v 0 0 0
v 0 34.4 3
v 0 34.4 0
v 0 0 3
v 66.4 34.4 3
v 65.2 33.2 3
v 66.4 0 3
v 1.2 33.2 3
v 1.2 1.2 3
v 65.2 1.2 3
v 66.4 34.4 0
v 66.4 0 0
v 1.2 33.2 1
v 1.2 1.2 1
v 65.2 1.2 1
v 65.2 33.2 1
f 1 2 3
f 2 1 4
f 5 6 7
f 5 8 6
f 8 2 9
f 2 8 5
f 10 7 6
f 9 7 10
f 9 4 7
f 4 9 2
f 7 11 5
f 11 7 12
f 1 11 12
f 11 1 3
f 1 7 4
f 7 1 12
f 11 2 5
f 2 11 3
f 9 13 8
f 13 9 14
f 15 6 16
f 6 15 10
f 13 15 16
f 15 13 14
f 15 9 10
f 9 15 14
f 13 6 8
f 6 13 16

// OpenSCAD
// file: utils.scad
function boxXSize(count, size, innerThickness, outerThickness) = count * (size + innerThickness) - innerThickness + 2 * outerThickness;

function boxYSize(count, size, innerThickness, outerThickness) = count * (size + innerThickness) - innerThickness + 2 * outerThickness;

function boxZSize(size, bottomThickness) = bottomThickness + size;
// file: config.scad
cellSize = [20, 30, 20];
cellsCount = [3, 1];

// ---

innerThickness = 1;
outerThickness = 1;
coverThickness = 1;
bottomThickness = 1;

coverOverlap = 2;
coverGap = 0.2;

$fa = 1;
$fs = 0.2;
// main file
include <config.scad>;

use <utils.scad>;

module Cover(boxSize, overlap = coverOverlap, gap = coverGap, thickness = coverThickness) {
    
    coverSize = [
        boxSize.x + 2*coverThickness + 2*coverGap,
        boxSize.y + 2*coverThickness + 2*coverGap,
        coverThickness + coverOverlap        
    ];

    difference() {
        cube(coverSize);
        translate([thickness + gap, thickness + gap, thickness]) cube([boxSize.x, boxSize.y, coverOverlap]);
    }
}

boxSize = [
    boxXSize(cellsCount.x, cellSize.x, innerThickness, outerThickness),
    boxYSize(cellsCount.y, cellSize.y, innerThickness, outerThickness)
];
Cover(boxSize);
